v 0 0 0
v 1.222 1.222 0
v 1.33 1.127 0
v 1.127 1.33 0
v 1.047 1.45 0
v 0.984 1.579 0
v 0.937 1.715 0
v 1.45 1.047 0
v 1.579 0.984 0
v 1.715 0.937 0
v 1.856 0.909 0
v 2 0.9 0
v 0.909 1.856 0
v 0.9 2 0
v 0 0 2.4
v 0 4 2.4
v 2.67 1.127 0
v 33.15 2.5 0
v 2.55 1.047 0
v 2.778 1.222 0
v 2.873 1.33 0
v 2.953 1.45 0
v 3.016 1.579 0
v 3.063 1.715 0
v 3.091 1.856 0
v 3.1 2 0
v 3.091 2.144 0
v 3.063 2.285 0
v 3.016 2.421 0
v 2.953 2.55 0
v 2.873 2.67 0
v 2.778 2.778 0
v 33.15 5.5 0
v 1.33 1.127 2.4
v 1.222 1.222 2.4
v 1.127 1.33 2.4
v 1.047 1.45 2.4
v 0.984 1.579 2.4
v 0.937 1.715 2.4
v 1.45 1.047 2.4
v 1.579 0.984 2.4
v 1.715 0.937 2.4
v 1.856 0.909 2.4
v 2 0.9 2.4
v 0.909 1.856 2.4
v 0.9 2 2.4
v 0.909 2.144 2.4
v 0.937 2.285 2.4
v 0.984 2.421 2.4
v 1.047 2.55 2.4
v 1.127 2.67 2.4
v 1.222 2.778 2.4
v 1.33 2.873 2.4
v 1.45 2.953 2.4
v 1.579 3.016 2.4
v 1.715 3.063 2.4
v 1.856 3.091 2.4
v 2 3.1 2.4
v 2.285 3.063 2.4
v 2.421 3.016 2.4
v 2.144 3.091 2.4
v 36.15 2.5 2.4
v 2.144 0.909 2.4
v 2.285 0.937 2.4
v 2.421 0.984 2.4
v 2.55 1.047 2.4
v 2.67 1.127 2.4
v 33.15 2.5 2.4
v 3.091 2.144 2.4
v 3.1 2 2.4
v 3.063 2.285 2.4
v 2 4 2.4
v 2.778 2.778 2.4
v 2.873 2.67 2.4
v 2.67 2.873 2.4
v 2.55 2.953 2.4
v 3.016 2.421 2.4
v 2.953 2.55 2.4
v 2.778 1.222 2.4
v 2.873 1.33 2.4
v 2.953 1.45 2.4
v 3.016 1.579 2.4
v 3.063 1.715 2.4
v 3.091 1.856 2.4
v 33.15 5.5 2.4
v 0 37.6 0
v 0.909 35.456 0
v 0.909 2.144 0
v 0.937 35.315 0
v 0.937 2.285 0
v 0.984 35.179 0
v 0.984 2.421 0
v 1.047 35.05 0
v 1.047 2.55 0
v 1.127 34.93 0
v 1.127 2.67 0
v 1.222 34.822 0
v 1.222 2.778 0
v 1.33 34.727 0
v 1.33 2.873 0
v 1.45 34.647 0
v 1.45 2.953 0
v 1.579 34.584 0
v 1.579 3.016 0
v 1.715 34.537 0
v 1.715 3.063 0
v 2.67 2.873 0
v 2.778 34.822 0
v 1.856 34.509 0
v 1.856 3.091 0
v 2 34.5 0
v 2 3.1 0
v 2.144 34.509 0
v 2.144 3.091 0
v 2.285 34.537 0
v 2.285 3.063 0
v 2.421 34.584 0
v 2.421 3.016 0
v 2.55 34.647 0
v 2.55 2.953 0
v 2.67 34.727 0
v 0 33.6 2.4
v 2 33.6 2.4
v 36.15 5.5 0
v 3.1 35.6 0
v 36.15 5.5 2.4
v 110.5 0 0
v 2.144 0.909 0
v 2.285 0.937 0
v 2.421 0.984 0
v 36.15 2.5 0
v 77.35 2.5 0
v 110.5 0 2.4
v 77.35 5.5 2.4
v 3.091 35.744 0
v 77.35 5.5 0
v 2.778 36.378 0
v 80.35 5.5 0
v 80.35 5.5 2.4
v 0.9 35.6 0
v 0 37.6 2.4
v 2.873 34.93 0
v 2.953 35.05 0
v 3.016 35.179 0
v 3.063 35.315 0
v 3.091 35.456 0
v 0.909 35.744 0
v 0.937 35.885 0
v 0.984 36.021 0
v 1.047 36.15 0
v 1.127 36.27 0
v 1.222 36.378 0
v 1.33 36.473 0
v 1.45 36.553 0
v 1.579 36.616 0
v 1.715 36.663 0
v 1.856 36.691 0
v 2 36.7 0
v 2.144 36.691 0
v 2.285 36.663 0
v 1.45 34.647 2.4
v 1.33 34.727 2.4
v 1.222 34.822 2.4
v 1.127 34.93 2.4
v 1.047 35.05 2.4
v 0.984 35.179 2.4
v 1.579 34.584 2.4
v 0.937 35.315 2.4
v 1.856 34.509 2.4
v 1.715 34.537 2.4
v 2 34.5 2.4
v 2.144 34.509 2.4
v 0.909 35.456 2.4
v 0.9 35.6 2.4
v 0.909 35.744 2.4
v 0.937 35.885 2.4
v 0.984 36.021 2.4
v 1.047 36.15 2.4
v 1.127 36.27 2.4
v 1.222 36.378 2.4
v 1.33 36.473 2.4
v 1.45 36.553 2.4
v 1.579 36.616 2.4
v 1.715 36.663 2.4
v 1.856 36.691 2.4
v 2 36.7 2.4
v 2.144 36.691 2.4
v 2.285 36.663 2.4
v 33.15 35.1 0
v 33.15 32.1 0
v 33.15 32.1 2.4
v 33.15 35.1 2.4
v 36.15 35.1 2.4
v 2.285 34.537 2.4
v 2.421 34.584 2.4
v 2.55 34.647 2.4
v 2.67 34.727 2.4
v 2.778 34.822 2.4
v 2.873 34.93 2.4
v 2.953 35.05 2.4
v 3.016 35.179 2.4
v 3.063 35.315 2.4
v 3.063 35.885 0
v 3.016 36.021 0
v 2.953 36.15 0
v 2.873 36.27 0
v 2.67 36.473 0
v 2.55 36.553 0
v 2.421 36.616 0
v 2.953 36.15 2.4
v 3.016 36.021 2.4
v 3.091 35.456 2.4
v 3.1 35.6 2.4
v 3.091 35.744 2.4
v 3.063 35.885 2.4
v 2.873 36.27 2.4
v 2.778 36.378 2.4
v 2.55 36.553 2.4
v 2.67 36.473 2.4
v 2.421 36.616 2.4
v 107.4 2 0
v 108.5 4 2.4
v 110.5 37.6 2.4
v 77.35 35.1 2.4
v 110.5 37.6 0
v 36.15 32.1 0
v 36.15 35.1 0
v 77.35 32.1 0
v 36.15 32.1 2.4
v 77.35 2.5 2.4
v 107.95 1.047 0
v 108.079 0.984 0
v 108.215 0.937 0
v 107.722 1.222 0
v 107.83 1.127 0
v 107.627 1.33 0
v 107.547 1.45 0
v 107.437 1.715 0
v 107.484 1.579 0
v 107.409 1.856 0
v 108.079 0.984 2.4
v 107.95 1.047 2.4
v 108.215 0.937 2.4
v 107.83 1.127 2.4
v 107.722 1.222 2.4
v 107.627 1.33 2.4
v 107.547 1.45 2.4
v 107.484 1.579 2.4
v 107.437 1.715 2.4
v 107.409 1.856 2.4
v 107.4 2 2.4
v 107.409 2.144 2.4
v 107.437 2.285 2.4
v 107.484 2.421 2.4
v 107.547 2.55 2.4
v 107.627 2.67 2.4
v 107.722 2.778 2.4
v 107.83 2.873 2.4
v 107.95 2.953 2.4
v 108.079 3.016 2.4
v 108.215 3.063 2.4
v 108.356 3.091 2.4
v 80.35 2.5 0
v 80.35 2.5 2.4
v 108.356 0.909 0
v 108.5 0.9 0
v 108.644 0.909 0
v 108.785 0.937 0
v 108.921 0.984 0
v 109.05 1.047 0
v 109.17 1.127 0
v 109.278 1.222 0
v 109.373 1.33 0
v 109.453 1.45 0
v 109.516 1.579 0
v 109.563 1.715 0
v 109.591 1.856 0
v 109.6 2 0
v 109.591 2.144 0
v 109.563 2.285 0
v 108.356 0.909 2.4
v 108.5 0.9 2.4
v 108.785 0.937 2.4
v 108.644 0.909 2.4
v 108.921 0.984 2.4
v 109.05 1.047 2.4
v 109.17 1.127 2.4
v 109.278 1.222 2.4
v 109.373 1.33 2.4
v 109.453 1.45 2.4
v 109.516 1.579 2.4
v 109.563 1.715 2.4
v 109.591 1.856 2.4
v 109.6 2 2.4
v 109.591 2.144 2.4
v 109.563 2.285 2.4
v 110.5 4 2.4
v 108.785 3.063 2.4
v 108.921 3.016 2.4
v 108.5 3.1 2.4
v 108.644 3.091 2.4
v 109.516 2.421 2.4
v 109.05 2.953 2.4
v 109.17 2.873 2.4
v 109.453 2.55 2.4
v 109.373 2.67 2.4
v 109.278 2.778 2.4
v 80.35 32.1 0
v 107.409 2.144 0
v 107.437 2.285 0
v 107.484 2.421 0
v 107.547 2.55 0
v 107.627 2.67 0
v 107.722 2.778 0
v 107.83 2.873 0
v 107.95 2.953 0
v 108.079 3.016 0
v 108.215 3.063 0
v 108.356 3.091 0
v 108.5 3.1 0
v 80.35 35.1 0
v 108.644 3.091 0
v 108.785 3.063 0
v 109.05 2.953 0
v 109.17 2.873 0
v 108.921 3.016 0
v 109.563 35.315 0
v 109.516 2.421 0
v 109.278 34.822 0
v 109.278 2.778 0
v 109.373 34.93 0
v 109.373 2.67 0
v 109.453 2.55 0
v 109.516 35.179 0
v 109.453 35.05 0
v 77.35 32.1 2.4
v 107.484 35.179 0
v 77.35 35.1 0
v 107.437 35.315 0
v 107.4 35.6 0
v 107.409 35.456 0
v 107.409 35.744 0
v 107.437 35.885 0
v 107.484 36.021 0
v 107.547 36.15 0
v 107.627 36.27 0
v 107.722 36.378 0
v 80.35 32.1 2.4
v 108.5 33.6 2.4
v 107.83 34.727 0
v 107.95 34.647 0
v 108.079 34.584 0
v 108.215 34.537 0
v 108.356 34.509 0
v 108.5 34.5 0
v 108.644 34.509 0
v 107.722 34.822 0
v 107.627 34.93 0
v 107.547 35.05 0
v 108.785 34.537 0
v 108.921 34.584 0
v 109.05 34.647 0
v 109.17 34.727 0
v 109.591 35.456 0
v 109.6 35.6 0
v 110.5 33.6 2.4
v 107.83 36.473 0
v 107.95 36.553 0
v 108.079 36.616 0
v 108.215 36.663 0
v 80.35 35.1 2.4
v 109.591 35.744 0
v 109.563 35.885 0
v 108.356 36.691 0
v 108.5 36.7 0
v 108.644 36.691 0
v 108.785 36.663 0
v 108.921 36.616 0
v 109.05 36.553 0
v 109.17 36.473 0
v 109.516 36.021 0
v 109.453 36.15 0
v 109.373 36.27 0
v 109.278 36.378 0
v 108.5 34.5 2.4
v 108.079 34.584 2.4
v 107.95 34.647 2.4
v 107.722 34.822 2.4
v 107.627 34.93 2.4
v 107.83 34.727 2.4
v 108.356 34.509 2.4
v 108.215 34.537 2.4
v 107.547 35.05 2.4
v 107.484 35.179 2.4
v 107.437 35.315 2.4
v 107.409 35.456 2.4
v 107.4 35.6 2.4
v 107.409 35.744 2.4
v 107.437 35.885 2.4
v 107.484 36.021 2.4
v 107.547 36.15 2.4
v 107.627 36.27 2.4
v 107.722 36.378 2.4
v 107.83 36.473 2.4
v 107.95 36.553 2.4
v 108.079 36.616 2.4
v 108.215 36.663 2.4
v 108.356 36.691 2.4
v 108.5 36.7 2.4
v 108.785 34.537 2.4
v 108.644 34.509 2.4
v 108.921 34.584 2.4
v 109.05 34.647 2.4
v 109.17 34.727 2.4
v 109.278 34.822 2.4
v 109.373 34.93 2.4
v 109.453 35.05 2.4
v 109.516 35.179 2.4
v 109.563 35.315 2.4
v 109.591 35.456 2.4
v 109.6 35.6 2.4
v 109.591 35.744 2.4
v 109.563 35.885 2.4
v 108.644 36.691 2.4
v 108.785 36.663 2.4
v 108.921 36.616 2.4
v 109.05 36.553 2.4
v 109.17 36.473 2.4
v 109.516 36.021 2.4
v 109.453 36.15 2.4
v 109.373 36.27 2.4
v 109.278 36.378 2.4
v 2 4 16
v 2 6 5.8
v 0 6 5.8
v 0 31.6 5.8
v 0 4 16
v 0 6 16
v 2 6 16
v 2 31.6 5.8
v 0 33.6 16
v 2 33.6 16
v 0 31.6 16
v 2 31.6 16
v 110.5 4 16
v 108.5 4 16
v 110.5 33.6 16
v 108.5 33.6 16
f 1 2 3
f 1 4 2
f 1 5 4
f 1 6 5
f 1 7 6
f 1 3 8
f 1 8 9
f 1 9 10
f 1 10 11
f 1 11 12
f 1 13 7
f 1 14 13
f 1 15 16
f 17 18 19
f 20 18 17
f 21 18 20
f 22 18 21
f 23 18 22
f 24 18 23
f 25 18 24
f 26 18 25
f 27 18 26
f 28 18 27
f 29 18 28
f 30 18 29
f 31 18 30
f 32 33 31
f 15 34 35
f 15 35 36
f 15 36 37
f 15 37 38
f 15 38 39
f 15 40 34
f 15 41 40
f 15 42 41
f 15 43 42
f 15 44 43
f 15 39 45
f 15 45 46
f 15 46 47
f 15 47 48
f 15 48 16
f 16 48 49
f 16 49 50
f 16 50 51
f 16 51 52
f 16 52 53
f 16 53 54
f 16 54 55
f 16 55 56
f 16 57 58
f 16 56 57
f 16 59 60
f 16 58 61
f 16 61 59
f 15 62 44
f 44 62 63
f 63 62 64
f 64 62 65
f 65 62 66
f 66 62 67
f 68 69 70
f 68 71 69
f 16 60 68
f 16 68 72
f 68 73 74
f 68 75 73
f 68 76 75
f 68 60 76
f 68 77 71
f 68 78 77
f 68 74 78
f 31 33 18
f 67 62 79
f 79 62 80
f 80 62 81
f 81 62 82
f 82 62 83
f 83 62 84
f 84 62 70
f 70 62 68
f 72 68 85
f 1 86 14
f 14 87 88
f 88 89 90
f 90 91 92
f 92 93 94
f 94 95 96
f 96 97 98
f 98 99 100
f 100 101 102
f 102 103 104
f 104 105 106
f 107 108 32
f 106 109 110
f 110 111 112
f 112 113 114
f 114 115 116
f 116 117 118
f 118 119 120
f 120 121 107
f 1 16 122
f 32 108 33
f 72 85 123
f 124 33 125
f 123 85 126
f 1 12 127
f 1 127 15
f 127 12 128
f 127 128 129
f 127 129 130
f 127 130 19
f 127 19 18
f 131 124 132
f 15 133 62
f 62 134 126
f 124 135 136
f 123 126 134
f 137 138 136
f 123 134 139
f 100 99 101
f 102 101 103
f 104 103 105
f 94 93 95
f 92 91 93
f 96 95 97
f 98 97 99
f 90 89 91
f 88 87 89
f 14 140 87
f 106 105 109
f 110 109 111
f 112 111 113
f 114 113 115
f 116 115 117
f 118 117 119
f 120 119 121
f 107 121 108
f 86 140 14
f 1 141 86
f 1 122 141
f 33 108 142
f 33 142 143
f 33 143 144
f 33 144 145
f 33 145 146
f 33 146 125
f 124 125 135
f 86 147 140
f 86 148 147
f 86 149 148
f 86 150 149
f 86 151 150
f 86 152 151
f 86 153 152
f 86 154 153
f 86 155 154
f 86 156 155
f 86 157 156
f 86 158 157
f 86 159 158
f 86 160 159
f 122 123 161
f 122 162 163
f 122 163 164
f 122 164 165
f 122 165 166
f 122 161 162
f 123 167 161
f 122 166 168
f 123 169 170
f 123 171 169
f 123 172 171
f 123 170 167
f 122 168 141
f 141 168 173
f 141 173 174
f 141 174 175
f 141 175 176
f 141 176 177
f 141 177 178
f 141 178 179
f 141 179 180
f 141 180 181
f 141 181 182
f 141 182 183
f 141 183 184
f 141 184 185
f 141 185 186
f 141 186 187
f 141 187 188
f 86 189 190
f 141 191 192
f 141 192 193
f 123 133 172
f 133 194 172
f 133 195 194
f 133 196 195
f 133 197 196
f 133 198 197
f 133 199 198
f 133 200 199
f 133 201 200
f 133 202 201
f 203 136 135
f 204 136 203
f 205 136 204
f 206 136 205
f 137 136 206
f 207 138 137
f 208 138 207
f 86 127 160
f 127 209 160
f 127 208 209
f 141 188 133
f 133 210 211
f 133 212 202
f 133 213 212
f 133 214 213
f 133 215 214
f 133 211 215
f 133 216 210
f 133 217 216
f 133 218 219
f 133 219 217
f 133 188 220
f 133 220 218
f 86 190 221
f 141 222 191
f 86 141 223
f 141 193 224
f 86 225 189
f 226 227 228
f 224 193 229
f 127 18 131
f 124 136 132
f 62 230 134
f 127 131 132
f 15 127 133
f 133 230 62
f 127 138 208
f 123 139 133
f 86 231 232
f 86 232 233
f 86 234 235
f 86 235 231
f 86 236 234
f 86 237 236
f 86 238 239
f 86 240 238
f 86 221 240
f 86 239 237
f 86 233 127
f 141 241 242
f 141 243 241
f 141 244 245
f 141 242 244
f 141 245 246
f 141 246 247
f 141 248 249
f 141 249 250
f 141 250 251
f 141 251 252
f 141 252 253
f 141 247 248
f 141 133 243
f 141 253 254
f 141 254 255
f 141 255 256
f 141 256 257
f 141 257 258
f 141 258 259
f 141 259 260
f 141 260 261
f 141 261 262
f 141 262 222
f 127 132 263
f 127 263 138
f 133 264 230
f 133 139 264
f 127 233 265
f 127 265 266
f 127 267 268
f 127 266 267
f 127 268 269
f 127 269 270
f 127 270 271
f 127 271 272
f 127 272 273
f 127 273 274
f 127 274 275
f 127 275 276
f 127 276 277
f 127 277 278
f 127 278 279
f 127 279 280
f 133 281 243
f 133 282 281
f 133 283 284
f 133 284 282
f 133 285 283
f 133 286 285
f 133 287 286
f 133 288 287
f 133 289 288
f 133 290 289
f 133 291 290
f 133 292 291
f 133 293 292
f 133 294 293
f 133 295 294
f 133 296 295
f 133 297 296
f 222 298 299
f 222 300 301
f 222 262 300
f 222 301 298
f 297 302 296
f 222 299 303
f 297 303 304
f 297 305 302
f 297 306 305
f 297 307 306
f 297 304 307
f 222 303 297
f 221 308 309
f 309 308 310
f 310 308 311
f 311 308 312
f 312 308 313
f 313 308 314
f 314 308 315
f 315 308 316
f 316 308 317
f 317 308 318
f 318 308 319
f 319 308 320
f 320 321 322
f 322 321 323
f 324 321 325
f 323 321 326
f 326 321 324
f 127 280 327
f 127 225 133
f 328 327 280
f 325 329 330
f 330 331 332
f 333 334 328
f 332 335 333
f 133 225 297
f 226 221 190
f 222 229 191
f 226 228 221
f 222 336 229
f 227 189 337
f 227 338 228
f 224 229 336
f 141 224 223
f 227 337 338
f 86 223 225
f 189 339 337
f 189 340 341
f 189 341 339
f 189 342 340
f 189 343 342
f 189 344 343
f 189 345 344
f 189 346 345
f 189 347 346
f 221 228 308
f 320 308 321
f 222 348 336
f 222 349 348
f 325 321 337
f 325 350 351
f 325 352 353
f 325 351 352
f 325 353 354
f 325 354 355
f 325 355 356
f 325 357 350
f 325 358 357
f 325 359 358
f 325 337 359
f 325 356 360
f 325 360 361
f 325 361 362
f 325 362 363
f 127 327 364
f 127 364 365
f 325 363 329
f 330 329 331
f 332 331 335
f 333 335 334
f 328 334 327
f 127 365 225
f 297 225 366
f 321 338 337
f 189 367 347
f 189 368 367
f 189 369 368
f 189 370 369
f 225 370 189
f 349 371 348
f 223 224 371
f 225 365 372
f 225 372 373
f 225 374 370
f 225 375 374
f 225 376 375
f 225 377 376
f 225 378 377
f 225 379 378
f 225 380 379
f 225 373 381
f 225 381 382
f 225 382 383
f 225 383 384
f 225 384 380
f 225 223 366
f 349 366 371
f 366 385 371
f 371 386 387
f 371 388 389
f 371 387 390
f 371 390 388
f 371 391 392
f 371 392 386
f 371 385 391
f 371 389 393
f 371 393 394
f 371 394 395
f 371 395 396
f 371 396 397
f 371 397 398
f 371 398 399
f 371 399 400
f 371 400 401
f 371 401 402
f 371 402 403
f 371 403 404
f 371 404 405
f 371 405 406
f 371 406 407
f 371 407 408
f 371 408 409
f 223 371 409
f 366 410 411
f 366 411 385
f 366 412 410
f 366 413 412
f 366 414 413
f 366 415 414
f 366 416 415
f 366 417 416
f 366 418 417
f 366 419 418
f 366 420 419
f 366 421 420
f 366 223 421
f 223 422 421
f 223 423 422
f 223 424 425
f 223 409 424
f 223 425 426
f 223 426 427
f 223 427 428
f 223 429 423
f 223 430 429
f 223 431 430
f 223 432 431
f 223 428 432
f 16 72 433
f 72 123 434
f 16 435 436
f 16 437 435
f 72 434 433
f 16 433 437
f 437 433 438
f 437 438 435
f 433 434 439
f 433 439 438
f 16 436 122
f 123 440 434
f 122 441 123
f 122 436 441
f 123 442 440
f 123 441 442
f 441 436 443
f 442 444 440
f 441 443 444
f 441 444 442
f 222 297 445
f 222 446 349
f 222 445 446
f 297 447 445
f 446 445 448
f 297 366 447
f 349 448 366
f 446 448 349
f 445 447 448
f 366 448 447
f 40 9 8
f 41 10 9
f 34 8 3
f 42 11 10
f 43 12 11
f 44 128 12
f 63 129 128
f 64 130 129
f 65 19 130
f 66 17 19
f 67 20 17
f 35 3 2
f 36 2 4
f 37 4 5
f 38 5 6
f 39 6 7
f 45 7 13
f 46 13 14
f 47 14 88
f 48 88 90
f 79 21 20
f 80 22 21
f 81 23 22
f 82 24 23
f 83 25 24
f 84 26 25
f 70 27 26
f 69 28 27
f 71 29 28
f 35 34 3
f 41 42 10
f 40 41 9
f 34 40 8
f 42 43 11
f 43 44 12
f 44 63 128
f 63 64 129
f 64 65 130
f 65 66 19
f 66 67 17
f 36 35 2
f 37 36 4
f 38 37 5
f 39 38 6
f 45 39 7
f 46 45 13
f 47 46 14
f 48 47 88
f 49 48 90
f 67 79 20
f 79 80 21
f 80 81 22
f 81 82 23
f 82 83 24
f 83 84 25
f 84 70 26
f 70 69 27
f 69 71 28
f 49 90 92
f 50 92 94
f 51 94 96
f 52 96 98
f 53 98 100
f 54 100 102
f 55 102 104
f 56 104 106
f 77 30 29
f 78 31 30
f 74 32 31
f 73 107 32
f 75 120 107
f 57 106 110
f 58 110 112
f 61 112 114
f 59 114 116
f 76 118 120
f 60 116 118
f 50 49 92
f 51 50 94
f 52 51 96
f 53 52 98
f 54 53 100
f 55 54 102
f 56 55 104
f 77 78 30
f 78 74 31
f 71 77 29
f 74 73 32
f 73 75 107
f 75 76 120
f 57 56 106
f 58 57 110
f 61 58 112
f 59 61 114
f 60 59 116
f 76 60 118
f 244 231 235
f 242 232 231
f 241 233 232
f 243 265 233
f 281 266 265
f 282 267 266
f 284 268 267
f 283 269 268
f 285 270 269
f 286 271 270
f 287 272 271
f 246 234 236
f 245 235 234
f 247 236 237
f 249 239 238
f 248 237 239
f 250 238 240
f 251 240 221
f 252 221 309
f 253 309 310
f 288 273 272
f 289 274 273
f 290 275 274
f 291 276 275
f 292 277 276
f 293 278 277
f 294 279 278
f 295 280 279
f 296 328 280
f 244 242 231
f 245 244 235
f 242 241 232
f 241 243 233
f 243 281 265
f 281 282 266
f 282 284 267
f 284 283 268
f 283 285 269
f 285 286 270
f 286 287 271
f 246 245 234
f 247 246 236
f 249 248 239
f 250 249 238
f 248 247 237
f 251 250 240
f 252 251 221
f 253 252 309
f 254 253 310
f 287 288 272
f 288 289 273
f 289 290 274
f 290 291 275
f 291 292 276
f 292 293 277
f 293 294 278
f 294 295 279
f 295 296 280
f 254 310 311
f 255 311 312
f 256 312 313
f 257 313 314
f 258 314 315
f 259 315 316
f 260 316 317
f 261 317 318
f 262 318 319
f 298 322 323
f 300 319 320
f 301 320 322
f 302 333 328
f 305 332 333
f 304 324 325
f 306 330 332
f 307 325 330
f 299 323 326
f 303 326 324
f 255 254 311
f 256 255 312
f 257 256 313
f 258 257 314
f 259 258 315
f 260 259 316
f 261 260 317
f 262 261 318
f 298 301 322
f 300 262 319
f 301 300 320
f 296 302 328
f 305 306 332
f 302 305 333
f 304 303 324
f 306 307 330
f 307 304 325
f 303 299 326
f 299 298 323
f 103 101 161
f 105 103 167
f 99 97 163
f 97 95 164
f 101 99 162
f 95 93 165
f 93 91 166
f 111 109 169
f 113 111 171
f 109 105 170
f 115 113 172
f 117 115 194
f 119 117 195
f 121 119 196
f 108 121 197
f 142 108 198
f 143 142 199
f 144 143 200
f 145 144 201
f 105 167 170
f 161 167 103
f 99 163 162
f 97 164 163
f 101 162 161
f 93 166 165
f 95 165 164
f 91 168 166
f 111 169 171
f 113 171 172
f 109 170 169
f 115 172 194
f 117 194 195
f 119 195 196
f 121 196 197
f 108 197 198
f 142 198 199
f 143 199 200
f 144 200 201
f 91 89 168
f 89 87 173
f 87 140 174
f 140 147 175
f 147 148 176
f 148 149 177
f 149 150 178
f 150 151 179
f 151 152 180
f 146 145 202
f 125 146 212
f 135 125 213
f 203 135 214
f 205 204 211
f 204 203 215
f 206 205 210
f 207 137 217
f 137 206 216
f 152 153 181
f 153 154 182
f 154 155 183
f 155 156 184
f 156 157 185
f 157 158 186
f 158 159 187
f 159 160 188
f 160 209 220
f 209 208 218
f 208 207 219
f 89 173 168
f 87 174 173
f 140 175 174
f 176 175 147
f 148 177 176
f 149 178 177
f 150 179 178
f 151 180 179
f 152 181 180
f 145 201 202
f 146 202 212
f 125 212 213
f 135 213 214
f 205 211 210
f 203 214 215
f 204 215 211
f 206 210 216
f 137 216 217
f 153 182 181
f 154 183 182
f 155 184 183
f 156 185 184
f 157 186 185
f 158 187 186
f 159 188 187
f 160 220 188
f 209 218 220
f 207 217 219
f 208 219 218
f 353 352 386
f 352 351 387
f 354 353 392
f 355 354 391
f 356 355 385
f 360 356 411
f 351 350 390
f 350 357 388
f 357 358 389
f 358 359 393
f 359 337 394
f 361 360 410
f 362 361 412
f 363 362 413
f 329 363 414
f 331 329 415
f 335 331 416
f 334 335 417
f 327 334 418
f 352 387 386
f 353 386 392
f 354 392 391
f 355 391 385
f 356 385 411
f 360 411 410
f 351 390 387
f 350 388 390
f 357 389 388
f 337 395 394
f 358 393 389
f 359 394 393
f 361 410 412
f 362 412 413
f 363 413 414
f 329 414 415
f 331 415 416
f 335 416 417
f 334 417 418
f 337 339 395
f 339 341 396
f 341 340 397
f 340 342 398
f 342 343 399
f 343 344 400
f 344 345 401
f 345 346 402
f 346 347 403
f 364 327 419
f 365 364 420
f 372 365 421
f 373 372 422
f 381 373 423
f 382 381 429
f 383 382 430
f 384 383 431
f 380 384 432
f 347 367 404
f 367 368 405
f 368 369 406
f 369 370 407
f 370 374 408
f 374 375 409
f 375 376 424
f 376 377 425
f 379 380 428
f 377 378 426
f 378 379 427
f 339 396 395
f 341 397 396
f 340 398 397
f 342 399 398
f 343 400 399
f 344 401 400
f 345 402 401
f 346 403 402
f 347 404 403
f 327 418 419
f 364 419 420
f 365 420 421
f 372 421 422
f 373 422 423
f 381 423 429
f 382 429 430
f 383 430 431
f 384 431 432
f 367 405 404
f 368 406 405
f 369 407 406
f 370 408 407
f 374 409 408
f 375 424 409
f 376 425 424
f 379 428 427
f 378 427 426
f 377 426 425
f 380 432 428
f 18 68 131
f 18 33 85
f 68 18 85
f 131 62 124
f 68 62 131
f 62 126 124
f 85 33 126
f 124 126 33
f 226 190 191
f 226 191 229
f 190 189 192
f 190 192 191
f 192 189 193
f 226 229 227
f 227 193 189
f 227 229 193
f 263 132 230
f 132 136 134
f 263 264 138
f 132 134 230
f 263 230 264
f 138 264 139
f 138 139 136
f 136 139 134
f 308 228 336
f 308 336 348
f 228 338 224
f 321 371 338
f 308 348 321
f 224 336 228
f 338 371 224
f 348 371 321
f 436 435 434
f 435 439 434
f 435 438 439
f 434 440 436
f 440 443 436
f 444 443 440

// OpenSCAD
// Generated FH1 print part; mm. See parameters.json and physical-fit limits.
difference() {
union() {
cube([110.5,37.6,2.4]);
translate([0, 4, 0]) { cube([2,29.6,16]); }
translate([108.5, 4, 0]) { cube([2,29.6,16]); }
}
translate([2, 2, -0.1]) { cylinder(d=2.2,h=2.6,$fn=48); }
translate([108.5, 2, -0.1]) { cylinder(d=2.2,h=2.6,$fn=48); }
translate([2, 35.6, -0.1]) { cylinder(d=2.2,h=2.6,$fn=48); }
translate([108.5, 35.6, -0.1]) { cylinder(d=2.2,h=2.6,$fn=48); }
translate([33.15, 2.5, -0.1]) { cube([3,3,2.6]); }
translate([33.15, 32.1, -0.1]) { cube([3,3,2.6]); }
translate([77.35, 2.5, -0.1]) { cube([3,3,2.6]); }
translate([77.35, 32.1, -0.1]) { cube([3,3,2.6]); }
translate([-0.1, 6, 5.8]) { cube([4.2,25.6,20]); }
}
